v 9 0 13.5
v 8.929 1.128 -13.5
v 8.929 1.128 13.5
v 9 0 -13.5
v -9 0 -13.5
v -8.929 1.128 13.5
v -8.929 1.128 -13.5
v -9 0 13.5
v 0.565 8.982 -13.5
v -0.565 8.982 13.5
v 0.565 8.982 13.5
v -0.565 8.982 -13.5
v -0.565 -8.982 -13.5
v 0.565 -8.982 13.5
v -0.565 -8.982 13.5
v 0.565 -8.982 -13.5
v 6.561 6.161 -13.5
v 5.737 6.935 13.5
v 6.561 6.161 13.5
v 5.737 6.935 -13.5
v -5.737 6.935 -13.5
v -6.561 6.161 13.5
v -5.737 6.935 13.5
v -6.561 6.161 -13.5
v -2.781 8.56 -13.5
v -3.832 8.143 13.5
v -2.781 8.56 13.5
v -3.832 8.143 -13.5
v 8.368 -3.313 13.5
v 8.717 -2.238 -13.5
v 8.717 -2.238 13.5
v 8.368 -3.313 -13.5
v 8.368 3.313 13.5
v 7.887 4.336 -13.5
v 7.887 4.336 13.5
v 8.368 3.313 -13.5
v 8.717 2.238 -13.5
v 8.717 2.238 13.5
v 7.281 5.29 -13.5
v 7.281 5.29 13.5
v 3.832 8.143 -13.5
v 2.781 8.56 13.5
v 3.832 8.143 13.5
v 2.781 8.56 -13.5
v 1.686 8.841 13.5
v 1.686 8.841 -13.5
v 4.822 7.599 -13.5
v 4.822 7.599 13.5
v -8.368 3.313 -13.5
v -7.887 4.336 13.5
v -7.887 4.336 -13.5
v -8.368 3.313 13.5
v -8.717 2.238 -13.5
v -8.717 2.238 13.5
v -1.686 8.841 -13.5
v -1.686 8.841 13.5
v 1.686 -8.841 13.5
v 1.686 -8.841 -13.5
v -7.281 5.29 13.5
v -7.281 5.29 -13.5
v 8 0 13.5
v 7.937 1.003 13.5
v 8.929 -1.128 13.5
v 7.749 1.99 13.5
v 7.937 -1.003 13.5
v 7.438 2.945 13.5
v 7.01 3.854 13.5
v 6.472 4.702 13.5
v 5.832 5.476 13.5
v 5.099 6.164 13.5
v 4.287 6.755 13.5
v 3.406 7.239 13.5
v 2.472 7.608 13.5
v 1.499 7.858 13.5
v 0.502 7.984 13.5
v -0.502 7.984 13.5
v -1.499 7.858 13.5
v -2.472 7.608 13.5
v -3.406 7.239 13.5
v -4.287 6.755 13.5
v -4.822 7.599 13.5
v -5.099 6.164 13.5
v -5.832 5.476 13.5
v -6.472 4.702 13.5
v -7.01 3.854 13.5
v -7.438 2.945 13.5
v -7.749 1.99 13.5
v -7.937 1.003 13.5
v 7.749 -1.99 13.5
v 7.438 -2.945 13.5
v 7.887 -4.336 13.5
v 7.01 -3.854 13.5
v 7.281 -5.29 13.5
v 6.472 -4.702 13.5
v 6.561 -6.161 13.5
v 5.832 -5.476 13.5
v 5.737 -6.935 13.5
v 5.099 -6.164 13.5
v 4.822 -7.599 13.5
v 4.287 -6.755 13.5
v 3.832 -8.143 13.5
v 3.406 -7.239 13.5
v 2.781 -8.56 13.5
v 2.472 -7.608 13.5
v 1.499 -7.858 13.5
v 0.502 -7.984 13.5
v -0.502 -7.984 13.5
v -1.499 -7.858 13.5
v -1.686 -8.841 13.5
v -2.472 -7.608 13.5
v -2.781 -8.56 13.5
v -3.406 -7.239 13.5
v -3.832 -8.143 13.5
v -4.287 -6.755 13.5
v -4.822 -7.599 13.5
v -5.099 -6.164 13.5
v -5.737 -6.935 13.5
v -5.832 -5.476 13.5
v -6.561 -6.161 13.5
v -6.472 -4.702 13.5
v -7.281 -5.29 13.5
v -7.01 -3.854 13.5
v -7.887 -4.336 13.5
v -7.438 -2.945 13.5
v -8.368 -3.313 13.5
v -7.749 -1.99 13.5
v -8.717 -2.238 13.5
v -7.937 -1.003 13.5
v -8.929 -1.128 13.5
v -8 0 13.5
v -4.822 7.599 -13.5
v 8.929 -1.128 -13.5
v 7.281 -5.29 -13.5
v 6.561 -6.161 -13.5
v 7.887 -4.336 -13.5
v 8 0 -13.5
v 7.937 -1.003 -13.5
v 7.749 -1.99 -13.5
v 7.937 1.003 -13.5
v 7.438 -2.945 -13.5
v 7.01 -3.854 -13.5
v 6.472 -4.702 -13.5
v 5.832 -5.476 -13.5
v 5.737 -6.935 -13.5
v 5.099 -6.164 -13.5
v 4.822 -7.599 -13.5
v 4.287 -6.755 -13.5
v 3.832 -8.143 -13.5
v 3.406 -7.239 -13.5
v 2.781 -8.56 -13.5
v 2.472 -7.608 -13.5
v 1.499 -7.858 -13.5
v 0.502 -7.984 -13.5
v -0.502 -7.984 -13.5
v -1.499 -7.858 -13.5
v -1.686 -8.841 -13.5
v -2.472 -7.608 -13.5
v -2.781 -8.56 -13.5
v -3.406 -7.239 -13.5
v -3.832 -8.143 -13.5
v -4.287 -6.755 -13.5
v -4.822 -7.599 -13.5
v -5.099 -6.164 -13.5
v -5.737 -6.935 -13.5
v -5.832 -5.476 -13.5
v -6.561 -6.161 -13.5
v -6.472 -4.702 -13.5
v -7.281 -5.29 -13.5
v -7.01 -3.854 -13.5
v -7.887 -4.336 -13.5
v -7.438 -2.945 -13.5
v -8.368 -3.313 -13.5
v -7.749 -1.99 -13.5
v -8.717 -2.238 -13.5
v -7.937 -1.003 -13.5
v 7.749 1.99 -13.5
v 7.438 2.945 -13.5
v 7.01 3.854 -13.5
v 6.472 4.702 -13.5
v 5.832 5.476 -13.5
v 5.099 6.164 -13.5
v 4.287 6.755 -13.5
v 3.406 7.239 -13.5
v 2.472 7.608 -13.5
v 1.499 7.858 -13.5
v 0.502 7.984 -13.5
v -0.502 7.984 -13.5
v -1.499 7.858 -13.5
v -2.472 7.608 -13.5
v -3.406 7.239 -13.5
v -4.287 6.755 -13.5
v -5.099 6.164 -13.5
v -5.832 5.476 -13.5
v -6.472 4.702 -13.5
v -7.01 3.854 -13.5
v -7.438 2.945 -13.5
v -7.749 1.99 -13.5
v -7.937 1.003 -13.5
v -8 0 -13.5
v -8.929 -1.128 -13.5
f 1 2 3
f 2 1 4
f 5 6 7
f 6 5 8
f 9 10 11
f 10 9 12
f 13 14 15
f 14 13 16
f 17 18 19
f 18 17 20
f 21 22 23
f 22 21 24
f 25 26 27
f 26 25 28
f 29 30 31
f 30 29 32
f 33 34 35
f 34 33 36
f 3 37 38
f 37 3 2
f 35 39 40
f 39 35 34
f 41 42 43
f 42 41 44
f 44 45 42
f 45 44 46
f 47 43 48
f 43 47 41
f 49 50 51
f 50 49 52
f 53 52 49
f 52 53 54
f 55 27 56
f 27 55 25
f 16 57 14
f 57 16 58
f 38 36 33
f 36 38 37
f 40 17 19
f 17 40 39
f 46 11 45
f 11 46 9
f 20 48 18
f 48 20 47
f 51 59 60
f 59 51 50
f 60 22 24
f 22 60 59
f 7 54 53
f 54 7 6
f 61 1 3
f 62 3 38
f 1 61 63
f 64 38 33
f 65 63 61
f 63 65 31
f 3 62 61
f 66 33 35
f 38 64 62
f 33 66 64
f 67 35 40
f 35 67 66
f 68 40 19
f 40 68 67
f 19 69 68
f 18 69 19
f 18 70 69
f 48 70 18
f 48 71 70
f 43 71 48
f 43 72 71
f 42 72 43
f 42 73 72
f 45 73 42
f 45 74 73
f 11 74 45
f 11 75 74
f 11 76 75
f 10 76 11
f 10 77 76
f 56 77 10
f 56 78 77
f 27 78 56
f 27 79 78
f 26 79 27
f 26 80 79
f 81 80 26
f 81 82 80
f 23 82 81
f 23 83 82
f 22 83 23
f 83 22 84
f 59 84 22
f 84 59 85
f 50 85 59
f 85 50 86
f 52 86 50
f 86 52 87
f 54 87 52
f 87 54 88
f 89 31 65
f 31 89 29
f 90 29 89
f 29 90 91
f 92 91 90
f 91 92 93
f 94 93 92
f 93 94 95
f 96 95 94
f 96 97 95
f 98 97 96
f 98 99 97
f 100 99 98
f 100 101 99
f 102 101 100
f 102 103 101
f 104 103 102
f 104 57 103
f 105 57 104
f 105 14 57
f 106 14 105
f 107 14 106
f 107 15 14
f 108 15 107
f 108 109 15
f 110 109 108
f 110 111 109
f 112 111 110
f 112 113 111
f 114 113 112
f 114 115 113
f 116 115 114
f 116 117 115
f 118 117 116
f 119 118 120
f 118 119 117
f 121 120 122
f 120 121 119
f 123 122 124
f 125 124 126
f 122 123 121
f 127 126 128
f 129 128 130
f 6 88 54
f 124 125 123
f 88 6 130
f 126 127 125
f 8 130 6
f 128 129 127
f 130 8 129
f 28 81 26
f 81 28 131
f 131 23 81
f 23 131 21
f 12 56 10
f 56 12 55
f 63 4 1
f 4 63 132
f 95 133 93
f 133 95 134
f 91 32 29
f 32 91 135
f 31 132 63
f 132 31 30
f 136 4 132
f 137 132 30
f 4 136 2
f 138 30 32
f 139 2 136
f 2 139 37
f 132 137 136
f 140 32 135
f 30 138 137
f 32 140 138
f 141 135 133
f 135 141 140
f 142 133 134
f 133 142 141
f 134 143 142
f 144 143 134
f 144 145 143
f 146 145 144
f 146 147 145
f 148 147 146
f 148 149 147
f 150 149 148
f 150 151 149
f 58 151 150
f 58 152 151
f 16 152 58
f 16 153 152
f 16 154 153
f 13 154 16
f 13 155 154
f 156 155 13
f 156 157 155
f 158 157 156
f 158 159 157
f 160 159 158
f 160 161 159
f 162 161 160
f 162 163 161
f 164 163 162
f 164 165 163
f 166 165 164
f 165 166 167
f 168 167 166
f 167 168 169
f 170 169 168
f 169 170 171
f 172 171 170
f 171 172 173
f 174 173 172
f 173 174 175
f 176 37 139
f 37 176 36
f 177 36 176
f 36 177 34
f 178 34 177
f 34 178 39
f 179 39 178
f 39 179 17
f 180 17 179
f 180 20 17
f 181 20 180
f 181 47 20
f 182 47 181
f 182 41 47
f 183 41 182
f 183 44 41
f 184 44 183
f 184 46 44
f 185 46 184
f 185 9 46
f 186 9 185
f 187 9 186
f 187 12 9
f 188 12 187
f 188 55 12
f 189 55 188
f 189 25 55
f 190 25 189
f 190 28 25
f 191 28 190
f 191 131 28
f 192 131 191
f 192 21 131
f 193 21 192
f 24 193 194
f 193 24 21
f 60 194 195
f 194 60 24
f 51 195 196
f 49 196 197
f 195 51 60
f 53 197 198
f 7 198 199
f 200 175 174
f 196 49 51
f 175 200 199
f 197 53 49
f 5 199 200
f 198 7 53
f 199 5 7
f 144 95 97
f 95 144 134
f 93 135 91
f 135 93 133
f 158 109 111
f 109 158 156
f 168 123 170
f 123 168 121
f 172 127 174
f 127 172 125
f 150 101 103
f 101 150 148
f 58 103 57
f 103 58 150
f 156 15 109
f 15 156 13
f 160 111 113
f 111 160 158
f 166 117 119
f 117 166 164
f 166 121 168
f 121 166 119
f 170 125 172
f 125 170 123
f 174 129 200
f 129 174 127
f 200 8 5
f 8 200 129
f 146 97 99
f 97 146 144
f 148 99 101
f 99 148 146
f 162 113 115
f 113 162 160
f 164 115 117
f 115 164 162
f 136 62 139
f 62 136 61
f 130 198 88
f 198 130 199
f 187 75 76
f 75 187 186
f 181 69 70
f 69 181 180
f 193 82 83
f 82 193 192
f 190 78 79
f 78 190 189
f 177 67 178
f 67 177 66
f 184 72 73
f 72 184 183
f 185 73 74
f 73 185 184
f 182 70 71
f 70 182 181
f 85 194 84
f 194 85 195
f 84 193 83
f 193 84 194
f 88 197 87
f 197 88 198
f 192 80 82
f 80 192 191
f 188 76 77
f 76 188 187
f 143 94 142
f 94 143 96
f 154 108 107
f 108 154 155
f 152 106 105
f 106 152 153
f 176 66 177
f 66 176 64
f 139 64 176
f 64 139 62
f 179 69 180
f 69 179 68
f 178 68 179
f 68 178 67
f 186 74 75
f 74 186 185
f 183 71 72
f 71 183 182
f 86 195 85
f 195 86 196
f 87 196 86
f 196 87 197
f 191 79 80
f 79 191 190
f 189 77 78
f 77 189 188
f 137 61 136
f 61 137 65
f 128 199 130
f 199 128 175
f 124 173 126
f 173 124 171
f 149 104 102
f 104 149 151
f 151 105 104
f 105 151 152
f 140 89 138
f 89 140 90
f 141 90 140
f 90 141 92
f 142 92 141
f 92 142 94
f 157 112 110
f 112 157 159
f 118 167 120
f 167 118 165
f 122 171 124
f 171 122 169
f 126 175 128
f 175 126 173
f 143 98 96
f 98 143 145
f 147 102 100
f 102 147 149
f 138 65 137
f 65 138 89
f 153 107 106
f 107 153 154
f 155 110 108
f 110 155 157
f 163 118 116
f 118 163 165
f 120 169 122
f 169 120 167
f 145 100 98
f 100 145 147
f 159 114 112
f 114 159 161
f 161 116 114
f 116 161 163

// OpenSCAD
$fn = 50;


difference() {
	union() {
		translate(v = [0, 0, -13.5000000000]) {
			cylinder(h = 27, r = 9.0000000000);
		}
	}
	union() {
		translate(v = [0, 0, -100.0000000000]) {
			cylinder(h = 200, r = 8);
		}
	}
}
